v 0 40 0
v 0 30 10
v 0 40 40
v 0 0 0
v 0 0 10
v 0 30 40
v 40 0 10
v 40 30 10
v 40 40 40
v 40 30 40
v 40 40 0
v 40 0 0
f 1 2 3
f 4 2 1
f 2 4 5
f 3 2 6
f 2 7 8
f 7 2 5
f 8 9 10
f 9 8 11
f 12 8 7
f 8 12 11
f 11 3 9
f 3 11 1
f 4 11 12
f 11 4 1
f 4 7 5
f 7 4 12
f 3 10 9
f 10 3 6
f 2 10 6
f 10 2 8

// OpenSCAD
union(){
cube([40,40,10]);
translate([0,30,10])
cube([40,10,30]);
}
